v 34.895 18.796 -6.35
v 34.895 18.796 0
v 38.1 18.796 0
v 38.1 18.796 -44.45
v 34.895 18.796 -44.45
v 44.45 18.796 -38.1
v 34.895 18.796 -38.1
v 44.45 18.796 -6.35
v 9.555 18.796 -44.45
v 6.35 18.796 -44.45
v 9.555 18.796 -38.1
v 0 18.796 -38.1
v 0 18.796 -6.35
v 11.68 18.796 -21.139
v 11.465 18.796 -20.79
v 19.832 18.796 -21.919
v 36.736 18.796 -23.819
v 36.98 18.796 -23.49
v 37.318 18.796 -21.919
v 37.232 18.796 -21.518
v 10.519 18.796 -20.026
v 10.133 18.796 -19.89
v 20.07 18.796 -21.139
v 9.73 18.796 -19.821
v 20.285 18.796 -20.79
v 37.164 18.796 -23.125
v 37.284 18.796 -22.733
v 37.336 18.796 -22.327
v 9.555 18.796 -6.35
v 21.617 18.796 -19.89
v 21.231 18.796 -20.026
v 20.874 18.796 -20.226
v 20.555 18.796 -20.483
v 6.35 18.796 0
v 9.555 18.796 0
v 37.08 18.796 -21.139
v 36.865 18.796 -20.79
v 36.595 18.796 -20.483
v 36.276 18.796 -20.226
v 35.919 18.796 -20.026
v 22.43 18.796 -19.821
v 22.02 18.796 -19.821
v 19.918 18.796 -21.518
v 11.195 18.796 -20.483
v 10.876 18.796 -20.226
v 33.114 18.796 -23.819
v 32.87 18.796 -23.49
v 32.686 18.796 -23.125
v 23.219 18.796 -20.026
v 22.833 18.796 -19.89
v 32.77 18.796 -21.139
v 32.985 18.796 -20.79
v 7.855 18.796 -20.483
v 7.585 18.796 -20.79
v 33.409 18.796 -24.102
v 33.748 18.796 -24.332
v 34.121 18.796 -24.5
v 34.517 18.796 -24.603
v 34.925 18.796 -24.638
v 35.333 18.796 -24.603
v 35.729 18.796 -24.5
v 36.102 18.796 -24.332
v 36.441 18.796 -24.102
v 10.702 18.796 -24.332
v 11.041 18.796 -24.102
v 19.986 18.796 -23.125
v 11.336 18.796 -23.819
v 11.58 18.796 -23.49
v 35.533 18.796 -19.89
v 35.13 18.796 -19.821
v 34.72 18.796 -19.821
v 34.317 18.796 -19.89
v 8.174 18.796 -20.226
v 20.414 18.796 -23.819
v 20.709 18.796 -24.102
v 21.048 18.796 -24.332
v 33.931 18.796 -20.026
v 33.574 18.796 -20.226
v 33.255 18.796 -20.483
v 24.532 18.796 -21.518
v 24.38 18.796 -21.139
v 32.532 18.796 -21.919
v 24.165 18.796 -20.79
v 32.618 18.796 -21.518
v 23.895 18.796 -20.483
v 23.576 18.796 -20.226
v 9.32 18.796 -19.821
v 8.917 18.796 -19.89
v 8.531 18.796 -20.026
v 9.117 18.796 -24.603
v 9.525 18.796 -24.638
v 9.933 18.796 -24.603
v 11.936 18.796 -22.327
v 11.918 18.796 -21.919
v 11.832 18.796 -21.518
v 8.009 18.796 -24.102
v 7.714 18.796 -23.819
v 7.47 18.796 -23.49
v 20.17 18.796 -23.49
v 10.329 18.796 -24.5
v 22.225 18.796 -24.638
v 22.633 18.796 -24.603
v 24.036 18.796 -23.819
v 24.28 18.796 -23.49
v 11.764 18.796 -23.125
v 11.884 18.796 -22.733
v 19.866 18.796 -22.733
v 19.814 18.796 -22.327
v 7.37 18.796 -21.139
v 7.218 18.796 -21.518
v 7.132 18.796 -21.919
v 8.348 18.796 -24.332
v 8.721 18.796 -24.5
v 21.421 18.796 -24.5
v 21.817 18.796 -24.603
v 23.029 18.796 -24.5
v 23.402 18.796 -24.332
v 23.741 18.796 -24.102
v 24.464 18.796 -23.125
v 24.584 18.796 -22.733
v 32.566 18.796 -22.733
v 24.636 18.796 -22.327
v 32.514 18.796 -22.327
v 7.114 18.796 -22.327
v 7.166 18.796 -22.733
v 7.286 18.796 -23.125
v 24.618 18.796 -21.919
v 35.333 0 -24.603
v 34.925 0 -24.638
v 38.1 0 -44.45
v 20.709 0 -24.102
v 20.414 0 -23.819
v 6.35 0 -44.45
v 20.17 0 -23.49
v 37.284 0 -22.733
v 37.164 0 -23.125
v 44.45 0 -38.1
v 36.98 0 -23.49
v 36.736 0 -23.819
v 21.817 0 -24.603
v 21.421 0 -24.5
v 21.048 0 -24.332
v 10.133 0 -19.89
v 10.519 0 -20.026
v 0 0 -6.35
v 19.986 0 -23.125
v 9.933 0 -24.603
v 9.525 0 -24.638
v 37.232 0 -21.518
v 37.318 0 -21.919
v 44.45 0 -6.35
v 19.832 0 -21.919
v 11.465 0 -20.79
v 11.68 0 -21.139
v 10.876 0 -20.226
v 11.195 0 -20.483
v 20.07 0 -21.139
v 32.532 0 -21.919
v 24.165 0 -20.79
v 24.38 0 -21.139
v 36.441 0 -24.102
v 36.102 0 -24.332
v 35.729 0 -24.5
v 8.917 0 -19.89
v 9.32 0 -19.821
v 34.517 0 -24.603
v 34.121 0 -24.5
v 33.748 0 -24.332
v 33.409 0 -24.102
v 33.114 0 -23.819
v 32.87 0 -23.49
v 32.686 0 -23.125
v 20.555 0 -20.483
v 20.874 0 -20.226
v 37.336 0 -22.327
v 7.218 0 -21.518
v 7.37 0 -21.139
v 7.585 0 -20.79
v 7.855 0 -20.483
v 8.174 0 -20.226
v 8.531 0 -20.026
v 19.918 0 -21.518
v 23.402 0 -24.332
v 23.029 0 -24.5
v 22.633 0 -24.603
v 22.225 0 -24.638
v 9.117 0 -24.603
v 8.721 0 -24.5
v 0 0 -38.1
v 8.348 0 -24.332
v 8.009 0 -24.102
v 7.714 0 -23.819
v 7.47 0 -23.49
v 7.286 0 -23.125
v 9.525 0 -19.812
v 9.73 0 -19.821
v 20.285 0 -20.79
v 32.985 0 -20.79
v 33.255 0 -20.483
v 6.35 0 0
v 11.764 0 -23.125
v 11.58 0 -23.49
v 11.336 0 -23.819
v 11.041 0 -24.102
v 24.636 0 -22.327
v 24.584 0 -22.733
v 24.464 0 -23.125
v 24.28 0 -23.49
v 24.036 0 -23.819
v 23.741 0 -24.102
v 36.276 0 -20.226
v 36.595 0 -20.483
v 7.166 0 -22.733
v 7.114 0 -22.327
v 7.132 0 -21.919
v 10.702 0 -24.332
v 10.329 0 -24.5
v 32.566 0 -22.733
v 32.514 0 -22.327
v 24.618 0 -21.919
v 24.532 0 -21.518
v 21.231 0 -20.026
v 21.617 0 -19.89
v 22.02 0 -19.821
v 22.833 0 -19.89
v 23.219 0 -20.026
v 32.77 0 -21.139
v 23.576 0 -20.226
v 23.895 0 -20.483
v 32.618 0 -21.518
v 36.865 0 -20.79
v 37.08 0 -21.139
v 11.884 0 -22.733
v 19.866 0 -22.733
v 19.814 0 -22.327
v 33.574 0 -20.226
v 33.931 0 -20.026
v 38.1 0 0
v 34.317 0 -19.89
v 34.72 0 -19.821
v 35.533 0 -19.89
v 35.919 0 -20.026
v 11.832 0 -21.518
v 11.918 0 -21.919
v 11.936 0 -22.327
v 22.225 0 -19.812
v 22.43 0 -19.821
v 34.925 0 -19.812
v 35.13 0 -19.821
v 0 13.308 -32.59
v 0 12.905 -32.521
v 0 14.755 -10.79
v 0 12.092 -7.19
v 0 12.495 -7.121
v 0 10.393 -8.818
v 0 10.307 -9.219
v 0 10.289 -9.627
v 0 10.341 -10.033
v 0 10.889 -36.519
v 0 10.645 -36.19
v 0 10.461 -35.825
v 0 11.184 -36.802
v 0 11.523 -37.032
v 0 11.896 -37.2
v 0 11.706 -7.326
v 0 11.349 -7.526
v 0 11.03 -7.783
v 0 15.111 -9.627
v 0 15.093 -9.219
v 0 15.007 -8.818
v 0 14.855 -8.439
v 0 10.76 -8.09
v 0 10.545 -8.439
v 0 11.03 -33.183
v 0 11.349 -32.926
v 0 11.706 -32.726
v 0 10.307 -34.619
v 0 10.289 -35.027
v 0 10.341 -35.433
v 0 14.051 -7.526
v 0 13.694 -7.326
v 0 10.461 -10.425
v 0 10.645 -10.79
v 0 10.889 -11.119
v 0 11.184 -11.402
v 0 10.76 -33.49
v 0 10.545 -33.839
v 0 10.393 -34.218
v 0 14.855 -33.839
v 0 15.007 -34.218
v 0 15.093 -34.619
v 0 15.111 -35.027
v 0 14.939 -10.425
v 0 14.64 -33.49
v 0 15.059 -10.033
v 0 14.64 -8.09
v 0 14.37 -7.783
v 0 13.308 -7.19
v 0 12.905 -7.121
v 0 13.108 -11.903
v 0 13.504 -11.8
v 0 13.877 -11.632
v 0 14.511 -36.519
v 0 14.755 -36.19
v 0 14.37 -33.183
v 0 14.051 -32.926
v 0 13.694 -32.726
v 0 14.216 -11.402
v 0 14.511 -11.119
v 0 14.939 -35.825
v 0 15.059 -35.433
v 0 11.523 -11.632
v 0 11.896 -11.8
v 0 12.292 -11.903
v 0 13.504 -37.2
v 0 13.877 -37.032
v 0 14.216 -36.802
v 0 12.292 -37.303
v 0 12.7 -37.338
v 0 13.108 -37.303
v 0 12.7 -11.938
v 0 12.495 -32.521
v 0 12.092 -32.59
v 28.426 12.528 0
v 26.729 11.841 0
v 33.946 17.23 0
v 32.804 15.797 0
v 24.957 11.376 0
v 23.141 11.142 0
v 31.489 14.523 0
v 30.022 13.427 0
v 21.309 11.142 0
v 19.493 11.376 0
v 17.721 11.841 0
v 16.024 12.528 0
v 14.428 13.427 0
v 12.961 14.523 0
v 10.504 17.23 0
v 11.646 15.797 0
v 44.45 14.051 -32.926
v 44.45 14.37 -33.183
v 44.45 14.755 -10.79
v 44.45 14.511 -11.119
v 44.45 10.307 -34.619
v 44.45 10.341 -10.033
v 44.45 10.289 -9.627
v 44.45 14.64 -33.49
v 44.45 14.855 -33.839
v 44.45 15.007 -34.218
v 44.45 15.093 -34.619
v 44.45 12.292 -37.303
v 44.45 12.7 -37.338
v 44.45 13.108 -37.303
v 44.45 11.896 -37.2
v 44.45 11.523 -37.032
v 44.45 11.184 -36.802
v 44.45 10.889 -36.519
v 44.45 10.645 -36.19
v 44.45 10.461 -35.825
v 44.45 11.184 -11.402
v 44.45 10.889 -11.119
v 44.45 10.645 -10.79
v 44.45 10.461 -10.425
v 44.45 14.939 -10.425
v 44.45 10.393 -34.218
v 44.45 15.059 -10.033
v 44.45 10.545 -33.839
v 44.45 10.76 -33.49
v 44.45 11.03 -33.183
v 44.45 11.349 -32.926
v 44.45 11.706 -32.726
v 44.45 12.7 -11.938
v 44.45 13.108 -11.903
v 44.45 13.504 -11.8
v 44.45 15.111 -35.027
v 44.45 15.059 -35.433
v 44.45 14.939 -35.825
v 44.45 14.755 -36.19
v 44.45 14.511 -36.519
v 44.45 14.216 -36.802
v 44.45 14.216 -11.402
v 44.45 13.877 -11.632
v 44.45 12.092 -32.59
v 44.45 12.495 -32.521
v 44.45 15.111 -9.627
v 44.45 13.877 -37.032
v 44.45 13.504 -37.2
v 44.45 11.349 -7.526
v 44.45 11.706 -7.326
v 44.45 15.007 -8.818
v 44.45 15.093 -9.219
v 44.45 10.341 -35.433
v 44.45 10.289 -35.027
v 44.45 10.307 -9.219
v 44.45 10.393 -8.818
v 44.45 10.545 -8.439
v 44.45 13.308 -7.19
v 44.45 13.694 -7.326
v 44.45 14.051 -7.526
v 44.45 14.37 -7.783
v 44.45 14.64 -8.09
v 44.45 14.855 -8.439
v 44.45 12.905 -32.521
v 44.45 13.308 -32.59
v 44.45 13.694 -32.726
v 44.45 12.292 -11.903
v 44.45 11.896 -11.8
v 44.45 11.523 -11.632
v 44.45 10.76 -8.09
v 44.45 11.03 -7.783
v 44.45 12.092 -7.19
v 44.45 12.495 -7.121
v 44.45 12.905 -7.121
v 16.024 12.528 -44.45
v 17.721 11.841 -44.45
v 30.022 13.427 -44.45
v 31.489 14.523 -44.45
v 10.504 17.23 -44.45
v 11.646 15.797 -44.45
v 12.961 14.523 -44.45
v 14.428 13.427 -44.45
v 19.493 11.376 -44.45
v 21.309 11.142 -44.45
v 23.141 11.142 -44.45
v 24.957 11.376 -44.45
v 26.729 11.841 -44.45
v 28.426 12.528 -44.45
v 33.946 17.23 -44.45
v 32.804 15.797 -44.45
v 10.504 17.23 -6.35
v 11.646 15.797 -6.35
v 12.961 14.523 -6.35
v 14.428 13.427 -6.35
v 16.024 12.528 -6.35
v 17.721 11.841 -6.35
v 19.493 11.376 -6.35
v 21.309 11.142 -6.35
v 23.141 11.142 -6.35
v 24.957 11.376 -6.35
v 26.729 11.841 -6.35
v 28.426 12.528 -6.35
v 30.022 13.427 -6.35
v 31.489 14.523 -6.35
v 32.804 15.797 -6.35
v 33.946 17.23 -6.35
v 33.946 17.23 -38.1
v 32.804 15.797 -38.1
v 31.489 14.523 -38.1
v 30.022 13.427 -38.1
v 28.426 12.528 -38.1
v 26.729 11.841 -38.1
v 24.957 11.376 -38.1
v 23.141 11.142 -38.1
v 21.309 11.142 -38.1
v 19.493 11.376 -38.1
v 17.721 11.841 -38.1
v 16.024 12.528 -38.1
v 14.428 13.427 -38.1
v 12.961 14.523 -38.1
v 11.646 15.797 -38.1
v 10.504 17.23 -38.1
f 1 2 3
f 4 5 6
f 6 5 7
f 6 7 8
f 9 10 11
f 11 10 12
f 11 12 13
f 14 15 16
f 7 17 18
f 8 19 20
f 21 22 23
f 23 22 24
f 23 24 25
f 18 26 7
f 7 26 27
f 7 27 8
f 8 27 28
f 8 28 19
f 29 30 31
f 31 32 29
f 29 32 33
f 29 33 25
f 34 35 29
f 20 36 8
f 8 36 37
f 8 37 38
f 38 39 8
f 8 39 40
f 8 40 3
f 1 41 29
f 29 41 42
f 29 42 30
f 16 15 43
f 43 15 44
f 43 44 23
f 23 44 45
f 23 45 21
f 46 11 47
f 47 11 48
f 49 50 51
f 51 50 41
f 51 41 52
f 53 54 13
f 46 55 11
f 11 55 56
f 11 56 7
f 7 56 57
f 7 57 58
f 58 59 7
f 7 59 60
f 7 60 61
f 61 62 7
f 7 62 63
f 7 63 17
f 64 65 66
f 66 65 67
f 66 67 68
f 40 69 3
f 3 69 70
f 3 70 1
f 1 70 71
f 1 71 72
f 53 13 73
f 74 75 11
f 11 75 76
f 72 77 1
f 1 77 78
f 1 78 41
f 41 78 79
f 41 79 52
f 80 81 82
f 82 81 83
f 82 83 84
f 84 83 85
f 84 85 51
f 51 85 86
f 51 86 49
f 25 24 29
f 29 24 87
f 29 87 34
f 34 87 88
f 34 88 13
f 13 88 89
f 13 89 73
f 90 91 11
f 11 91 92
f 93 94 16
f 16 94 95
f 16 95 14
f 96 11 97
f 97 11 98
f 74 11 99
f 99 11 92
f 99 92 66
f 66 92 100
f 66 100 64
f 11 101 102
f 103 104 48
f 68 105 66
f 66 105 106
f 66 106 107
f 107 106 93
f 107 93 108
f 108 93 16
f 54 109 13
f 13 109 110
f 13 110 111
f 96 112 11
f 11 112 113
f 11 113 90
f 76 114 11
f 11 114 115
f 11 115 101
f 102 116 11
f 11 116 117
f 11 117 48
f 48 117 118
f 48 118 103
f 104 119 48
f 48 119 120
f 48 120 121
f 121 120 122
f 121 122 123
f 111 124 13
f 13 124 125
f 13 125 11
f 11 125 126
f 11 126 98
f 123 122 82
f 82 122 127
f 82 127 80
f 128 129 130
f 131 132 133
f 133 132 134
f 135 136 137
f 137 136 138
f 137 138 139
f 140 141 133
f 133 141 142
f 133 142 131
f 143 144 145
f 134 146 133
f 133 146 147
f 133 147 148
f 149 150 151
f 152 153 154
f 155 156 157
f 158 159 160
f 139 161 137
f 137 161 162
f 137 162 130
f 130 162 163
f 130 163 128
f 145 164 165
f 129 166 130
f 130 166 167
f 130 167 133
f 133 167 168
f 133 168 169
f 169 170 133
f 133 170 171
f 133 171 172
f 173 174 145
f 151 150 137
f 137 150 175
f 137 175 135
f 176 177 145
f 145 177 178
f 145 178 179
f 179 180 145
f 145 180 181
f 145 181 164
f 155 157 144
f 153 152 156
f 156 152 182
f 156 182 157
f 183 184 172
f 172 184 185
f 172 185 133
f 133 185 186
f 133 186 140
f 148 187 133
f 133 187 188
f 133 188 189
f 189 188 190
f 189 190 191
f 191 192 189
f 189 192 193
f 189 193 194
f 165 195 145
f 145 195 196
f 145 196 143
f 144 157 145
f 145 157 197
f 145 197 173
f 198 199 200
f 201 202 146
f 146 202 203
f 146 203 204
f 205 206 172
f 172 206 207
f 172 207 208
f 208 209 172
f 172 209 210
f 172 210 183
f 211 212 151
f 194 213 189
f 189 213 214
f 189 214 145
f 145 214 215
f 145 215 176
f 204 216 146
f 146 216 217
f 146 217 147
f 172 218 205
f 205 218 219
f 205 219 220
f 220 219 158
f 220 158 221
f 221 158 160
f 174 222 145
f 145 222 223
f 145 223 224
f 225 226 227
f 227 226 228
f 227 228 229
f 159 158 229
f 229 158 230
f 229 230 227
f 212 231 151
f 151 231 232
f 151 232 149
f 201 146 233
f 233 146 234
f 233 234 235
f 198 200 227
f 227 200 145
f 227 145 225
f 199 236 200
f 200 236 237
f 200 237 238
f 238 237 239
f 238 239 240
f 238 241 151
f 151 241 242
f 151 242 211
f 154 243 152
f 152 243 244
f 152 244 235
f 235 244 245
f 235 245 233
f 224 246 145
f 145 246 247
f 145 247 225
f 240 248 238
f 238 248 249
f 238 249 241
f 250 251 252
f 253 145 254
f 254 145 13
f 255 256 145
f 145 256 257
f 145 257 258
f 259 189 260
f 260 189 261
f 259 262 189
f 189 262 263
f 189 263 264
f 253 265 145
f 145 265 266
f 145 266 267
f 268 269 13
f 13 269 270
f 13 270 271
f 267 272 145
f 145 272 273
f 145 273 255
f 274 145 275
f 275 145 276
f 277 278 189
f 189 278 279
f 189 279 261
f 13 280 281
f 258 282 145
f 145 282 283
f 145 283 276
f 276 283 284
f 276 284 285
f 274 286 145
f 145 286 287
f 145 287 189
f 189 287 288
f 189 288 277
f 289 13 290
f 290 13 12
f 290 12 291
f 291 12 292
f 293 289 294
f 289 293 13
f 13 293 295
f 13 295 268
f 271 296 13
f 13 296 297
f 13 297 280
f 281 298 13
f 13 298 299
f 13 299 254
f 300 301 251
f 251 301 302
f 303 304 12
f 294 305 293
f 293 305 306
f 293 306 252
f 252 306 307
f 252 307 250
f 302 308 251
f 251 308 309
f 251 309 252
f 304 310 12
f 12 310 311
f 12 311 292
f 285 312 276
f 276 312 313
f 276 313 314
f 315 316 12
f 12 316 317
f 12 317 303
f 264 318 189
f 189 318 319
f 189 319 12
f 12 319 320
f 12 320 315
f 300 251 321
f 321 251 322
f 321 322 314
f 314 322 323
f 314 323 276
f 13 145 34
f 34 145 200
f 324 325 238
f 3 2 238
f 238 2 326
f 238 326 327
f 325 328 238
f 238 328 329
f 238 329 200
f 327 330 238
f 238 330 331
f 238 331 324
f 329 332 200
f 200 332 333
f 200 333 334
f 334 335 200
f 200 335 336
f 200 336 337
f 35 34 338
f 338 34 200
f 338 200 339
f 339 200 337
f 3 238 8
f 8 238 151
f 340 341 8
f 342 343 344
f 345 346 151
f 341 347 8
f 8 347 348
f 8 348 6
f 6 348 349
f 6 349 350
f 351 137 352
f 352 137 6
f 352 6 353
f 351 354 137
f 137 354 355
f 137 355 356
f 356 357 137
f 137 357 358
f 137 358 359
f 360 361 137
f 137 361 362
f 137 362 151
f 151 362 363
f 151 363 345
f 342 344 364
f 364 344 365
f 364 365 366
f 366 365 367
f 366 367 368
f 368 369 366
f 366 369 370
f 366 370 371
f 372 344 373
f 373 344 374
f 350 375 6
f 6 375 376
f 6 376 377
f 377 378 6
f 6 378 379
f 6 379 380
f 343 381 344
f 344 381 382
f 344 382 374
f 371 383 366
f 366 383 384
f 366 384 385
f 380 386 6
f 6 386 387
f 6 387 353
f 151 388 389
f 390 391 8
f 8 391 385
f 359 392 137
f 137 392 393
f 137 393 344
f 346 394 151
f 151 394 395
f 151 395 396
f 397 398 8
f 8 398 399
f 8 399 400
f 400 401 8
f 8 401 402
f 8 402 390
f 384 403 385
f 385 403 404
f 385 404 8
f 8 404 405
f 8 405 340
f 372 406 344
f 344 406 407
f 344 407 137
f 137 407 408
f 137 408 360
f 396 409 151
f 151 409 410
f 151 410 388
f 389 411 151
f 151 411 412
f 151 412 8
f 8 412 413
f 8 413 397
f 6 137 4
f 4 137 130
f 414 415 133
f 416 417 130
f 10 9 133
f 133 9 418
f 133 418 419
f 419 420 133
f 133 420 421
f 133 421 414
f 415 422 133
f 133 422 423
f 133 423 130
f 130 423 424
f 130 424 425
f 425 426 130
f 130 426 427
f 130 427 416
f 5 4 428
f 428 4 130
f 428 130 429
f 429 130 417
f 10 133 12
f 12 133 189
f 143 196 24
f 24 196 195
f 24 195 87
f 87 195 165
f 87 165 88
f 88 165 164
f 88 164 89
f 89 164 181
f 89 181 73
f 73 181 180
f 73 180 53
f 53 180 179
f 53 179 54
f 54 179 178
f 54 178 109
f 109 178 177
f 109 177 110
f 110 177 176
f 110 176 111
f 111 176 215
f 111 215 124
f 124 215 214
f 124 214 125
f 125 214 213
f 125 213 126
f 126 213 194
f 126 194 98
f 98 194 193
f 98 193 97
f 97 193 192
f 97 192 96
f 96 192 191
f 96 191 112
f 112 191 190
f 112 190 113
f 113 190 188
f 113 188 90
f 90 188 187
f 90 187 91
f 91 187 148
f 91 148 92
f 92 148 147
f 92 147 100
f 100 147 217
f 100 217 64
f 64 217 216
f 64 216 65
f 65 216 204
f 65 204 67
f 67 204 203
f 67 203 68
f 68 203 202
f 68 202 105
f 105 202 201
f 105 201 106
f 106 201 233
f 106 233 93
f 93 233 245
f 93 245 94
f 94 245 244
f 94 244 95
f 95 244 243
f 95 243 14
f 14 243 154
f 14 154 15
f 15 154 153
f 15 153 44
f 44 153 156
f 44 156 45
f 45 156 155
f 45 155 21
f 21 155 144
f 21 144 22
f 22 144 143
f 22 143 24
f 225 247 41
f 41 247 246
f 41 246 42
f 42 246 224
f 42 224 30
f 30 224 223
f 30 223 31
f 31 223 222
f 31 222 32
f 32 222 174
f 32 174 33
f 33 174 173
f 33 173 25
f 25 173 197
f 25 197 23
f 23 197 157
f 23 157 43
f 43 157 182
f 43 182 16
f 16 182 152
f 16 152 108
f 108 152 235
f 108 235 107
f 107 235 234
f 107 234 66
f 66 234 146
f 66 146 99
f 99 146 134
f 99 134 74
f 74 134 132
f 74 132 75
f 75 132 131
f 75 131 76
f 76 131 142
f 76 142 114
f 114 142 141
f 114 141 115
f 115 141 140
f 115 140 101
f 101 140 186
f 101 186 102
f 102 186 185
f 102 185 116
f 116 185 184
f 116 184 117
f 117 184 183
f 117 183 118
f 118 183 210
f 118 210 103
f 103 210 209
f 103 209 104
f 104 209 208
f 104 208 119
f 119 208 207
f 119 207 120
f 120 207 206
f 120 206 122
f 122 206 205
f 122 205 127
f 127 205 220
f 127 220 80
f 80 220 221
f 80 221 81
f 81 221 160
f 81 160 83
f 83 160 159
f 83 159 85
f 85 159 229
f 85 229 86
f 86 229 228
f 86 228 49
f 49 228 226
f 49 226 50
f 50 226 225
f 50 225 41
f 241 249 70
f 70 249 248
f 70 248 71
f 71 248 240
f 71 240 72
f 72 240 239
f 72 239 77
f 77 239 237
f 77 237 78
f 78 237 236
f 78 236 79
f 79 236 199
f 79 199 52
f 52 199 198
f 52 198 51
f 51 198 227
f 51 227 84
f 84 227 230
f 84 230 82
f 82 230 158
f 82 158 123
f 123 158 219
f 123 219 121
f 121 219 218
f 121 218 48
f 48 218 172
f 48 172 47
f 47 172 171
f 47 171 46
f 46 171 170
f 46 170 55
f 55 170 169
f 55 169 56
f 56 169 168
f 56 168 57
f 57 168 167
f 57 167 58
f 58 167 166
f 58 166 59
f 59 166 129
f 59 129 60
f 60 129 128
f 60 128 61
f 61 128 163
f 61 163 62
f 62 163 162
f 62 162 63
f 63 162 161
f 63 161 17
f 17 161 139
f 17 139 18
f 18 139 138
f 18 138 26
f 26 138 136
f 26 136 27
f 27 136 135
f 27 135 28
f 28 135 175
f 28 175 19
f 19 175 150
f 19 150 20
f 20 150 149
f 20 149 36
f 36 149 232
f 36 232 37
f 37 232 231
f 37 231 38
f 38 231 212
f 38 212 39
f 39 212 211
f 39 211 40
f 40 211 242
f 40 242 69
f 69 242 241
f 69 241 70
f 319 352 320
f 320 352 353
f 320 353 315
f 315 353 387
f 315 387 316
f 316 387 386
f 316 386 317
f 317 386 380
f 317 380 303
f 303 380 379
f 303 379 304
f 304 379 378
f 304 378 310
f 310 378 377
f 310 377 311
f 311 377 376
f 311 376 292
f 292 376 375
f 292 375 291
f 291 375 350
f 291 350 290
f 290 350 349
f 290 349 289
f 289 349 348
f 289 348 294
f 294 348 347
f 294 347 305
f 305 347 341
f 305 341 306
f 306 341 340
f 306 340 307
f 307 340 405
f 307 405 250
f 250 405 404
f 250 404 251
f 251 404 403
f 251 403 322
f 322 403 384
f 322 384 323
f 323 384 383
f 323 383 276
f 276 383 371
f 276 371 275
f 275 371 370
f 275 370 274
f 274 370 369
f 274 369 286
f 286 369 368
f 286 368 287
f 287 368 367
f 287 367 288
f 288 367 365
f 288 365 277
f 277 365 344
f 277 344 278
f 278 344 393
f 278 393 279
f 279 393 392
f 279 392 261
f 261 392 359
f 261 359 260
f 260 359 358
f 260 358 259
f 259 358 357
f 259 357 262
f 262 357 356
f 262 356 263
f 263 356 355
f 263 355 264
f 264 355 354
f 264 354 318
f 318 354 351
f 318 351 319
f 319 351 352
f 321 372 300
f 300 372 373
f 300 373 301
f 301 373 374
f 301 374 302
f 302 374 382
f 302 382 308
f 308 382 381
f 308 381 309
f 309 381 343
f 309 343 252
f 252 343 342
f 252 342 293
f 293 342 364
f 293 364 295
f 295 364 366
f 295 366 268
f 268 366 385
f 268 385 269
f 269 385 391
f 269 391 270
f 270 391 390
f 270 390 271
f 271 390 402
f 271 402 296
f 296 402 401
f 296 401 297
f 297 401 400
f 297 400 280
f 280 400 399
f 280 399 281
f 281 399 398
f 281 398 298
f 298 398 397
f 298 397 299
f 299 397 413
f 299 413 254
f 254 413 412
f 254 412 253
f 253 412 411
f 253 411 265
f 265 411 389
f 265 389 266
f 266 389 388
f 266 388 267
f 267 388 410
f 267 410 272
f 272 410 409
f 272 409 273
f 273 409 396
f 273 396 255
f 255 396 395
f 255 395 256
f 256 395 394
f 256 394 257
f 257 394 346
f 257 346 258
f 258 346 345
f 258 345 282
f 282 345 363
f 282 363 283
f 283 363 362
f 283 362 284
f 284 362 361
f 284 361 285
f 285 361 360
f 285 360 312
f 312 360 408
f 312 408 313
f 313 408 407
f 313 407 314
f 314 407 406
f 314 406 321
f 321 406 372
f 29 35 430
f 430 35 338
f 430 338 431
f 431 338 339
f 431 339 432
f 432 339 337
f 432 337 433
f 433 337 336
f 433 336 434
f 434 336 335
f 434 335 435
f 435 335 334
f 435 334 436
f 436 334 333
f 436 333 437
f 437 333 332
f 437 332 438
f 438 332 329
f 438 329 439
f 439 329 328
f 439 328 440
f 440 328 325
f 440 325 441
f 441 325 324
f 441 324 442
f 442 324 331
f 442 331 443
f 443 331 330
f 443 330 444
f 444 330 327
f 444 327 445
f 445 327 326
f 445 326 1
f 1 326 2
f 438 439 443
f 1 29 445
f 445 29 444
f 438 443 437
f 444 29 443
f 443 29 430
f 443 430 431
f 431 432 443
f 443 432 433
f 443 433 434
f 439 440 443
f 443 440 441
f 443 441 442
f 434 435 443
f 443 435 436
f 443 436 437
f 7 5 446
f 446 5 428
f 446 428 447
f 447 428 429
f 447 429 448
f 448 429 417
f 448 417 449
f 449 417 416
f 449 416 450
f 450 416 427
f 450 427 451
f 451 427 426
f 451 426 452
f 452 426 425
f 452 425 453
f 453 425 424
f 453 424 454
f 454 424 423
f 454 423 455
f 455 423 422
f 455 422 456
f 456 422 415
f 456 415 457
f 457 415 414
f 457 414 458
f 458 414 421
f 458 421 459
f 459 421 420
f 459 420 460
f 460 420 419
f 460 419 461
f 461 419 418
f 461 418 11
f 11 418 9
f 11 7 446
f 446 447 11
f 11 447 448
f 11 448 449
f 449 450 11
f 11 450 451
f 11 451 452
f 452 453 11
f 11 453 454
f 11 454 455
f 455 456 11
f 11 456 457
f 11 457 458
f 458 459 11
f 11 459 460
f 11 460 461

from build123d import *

# Parameters (mm, degrees)
SKETCH1_R           = 2.413
BOSS_EXTRUDE1_DEPTH = 44.45
SKETCH2_R           = 2.413
CUT_EXTRUDE1_DEPTH  = 50.8
SKETCH3_W           = 44.45
SKETCH3_H           = 25.654
CUT_EXTRUDE2_DEPTH  = 77.989658396
SKETCH4_R           = 14.2875
CUT_EXTRUDE3_DEPTH  = 6.35


with BuildPart() as part:
    # Sketch1 → Boss-Extrude1 (new body)
    with BuildSketch(Plane(origin=(0, 0, 0), x_dir=(1, 0, 0), z_dir=(0, 1, 0))):
        Polygon((0, 38.1), (6.35, 44.45), (38.1, 44.45), (44.45, 38.1), (44.45, 6.35), (38.1, 0), (6.35, 0), (0, 6.35), align=None)
        with Locations(Location((9.525, 22.225, 0), (0, 0, 270))):
            Circle(SKETCH1_R, mode=Mode.SUBTRACT)
        with Locations(Location((22.225, 22.225, 0), (0, 0, 270))):
            Circle(SKETCH1_R, mode=Mode.SUBTRACT)
        with Locations(Location((34.925, 22.225, 0), (0, 0, 270))):
            Circle(SKETCH1_R, mode=Mode.SUBTRACT)
    extrude(amount=BOSS_EXTRUDE1_DEPTH)

    # Sketch2 → Cut-Extrude1 (cut)
    with BuildSketch(Plane(origin=(44.45, 0, 0), x_dir=(0, 0, -1), z_dir=(1, 0, 0))):
        with Locations((9.525, 31.75)):
            Circle(SKETCH2_R)
        with Locations((34.925, 31.75)):
            Circle(SKETCH2_R)
        with Locations((34.925, 12.7)):
            Circle(SKETCH2_R)
        with Locations((9.525, 12.7)):
            Circle(SKETCH2_R)
    extrude(amount=-CUT_EXTRUDE1_DEPTH, mode=Mode.SUBTRACT)

    # Sketch3 → Cut-Extrude2 (cut, through all)
    with BuildSketch(Plane(origin=(44.45, 0, 0), x_dir=(0, 0, -1), z_dir=(1, 0, 0))):
        with Locations((22.225, 31.623)):
            Rectangle(SKETCH3_W, SKETCH3_H)
    extrude(amount=-CUT_EXTRUDE2_DEPTH, mode=Mode.SUBTRACT)

    # Sketch4 → Cut-Extrude3 (cut)
    with BuildSketch(Plane.XY):
        with Locations((22.225, 25.4)):
            Circle(SKETCH4_R)
    cut_extrude3 = extrude(amount=-CUT_EXTRUDE3_DEPTH, mode=Mode.SUBTRACT)

    # Mirror1: Cut-Extrude3 across plane
    add(cut_extrude3.mirror(Plane.XY.offset(-22.225)), mode=Mode.SUBTRACT)


solid = part.part
